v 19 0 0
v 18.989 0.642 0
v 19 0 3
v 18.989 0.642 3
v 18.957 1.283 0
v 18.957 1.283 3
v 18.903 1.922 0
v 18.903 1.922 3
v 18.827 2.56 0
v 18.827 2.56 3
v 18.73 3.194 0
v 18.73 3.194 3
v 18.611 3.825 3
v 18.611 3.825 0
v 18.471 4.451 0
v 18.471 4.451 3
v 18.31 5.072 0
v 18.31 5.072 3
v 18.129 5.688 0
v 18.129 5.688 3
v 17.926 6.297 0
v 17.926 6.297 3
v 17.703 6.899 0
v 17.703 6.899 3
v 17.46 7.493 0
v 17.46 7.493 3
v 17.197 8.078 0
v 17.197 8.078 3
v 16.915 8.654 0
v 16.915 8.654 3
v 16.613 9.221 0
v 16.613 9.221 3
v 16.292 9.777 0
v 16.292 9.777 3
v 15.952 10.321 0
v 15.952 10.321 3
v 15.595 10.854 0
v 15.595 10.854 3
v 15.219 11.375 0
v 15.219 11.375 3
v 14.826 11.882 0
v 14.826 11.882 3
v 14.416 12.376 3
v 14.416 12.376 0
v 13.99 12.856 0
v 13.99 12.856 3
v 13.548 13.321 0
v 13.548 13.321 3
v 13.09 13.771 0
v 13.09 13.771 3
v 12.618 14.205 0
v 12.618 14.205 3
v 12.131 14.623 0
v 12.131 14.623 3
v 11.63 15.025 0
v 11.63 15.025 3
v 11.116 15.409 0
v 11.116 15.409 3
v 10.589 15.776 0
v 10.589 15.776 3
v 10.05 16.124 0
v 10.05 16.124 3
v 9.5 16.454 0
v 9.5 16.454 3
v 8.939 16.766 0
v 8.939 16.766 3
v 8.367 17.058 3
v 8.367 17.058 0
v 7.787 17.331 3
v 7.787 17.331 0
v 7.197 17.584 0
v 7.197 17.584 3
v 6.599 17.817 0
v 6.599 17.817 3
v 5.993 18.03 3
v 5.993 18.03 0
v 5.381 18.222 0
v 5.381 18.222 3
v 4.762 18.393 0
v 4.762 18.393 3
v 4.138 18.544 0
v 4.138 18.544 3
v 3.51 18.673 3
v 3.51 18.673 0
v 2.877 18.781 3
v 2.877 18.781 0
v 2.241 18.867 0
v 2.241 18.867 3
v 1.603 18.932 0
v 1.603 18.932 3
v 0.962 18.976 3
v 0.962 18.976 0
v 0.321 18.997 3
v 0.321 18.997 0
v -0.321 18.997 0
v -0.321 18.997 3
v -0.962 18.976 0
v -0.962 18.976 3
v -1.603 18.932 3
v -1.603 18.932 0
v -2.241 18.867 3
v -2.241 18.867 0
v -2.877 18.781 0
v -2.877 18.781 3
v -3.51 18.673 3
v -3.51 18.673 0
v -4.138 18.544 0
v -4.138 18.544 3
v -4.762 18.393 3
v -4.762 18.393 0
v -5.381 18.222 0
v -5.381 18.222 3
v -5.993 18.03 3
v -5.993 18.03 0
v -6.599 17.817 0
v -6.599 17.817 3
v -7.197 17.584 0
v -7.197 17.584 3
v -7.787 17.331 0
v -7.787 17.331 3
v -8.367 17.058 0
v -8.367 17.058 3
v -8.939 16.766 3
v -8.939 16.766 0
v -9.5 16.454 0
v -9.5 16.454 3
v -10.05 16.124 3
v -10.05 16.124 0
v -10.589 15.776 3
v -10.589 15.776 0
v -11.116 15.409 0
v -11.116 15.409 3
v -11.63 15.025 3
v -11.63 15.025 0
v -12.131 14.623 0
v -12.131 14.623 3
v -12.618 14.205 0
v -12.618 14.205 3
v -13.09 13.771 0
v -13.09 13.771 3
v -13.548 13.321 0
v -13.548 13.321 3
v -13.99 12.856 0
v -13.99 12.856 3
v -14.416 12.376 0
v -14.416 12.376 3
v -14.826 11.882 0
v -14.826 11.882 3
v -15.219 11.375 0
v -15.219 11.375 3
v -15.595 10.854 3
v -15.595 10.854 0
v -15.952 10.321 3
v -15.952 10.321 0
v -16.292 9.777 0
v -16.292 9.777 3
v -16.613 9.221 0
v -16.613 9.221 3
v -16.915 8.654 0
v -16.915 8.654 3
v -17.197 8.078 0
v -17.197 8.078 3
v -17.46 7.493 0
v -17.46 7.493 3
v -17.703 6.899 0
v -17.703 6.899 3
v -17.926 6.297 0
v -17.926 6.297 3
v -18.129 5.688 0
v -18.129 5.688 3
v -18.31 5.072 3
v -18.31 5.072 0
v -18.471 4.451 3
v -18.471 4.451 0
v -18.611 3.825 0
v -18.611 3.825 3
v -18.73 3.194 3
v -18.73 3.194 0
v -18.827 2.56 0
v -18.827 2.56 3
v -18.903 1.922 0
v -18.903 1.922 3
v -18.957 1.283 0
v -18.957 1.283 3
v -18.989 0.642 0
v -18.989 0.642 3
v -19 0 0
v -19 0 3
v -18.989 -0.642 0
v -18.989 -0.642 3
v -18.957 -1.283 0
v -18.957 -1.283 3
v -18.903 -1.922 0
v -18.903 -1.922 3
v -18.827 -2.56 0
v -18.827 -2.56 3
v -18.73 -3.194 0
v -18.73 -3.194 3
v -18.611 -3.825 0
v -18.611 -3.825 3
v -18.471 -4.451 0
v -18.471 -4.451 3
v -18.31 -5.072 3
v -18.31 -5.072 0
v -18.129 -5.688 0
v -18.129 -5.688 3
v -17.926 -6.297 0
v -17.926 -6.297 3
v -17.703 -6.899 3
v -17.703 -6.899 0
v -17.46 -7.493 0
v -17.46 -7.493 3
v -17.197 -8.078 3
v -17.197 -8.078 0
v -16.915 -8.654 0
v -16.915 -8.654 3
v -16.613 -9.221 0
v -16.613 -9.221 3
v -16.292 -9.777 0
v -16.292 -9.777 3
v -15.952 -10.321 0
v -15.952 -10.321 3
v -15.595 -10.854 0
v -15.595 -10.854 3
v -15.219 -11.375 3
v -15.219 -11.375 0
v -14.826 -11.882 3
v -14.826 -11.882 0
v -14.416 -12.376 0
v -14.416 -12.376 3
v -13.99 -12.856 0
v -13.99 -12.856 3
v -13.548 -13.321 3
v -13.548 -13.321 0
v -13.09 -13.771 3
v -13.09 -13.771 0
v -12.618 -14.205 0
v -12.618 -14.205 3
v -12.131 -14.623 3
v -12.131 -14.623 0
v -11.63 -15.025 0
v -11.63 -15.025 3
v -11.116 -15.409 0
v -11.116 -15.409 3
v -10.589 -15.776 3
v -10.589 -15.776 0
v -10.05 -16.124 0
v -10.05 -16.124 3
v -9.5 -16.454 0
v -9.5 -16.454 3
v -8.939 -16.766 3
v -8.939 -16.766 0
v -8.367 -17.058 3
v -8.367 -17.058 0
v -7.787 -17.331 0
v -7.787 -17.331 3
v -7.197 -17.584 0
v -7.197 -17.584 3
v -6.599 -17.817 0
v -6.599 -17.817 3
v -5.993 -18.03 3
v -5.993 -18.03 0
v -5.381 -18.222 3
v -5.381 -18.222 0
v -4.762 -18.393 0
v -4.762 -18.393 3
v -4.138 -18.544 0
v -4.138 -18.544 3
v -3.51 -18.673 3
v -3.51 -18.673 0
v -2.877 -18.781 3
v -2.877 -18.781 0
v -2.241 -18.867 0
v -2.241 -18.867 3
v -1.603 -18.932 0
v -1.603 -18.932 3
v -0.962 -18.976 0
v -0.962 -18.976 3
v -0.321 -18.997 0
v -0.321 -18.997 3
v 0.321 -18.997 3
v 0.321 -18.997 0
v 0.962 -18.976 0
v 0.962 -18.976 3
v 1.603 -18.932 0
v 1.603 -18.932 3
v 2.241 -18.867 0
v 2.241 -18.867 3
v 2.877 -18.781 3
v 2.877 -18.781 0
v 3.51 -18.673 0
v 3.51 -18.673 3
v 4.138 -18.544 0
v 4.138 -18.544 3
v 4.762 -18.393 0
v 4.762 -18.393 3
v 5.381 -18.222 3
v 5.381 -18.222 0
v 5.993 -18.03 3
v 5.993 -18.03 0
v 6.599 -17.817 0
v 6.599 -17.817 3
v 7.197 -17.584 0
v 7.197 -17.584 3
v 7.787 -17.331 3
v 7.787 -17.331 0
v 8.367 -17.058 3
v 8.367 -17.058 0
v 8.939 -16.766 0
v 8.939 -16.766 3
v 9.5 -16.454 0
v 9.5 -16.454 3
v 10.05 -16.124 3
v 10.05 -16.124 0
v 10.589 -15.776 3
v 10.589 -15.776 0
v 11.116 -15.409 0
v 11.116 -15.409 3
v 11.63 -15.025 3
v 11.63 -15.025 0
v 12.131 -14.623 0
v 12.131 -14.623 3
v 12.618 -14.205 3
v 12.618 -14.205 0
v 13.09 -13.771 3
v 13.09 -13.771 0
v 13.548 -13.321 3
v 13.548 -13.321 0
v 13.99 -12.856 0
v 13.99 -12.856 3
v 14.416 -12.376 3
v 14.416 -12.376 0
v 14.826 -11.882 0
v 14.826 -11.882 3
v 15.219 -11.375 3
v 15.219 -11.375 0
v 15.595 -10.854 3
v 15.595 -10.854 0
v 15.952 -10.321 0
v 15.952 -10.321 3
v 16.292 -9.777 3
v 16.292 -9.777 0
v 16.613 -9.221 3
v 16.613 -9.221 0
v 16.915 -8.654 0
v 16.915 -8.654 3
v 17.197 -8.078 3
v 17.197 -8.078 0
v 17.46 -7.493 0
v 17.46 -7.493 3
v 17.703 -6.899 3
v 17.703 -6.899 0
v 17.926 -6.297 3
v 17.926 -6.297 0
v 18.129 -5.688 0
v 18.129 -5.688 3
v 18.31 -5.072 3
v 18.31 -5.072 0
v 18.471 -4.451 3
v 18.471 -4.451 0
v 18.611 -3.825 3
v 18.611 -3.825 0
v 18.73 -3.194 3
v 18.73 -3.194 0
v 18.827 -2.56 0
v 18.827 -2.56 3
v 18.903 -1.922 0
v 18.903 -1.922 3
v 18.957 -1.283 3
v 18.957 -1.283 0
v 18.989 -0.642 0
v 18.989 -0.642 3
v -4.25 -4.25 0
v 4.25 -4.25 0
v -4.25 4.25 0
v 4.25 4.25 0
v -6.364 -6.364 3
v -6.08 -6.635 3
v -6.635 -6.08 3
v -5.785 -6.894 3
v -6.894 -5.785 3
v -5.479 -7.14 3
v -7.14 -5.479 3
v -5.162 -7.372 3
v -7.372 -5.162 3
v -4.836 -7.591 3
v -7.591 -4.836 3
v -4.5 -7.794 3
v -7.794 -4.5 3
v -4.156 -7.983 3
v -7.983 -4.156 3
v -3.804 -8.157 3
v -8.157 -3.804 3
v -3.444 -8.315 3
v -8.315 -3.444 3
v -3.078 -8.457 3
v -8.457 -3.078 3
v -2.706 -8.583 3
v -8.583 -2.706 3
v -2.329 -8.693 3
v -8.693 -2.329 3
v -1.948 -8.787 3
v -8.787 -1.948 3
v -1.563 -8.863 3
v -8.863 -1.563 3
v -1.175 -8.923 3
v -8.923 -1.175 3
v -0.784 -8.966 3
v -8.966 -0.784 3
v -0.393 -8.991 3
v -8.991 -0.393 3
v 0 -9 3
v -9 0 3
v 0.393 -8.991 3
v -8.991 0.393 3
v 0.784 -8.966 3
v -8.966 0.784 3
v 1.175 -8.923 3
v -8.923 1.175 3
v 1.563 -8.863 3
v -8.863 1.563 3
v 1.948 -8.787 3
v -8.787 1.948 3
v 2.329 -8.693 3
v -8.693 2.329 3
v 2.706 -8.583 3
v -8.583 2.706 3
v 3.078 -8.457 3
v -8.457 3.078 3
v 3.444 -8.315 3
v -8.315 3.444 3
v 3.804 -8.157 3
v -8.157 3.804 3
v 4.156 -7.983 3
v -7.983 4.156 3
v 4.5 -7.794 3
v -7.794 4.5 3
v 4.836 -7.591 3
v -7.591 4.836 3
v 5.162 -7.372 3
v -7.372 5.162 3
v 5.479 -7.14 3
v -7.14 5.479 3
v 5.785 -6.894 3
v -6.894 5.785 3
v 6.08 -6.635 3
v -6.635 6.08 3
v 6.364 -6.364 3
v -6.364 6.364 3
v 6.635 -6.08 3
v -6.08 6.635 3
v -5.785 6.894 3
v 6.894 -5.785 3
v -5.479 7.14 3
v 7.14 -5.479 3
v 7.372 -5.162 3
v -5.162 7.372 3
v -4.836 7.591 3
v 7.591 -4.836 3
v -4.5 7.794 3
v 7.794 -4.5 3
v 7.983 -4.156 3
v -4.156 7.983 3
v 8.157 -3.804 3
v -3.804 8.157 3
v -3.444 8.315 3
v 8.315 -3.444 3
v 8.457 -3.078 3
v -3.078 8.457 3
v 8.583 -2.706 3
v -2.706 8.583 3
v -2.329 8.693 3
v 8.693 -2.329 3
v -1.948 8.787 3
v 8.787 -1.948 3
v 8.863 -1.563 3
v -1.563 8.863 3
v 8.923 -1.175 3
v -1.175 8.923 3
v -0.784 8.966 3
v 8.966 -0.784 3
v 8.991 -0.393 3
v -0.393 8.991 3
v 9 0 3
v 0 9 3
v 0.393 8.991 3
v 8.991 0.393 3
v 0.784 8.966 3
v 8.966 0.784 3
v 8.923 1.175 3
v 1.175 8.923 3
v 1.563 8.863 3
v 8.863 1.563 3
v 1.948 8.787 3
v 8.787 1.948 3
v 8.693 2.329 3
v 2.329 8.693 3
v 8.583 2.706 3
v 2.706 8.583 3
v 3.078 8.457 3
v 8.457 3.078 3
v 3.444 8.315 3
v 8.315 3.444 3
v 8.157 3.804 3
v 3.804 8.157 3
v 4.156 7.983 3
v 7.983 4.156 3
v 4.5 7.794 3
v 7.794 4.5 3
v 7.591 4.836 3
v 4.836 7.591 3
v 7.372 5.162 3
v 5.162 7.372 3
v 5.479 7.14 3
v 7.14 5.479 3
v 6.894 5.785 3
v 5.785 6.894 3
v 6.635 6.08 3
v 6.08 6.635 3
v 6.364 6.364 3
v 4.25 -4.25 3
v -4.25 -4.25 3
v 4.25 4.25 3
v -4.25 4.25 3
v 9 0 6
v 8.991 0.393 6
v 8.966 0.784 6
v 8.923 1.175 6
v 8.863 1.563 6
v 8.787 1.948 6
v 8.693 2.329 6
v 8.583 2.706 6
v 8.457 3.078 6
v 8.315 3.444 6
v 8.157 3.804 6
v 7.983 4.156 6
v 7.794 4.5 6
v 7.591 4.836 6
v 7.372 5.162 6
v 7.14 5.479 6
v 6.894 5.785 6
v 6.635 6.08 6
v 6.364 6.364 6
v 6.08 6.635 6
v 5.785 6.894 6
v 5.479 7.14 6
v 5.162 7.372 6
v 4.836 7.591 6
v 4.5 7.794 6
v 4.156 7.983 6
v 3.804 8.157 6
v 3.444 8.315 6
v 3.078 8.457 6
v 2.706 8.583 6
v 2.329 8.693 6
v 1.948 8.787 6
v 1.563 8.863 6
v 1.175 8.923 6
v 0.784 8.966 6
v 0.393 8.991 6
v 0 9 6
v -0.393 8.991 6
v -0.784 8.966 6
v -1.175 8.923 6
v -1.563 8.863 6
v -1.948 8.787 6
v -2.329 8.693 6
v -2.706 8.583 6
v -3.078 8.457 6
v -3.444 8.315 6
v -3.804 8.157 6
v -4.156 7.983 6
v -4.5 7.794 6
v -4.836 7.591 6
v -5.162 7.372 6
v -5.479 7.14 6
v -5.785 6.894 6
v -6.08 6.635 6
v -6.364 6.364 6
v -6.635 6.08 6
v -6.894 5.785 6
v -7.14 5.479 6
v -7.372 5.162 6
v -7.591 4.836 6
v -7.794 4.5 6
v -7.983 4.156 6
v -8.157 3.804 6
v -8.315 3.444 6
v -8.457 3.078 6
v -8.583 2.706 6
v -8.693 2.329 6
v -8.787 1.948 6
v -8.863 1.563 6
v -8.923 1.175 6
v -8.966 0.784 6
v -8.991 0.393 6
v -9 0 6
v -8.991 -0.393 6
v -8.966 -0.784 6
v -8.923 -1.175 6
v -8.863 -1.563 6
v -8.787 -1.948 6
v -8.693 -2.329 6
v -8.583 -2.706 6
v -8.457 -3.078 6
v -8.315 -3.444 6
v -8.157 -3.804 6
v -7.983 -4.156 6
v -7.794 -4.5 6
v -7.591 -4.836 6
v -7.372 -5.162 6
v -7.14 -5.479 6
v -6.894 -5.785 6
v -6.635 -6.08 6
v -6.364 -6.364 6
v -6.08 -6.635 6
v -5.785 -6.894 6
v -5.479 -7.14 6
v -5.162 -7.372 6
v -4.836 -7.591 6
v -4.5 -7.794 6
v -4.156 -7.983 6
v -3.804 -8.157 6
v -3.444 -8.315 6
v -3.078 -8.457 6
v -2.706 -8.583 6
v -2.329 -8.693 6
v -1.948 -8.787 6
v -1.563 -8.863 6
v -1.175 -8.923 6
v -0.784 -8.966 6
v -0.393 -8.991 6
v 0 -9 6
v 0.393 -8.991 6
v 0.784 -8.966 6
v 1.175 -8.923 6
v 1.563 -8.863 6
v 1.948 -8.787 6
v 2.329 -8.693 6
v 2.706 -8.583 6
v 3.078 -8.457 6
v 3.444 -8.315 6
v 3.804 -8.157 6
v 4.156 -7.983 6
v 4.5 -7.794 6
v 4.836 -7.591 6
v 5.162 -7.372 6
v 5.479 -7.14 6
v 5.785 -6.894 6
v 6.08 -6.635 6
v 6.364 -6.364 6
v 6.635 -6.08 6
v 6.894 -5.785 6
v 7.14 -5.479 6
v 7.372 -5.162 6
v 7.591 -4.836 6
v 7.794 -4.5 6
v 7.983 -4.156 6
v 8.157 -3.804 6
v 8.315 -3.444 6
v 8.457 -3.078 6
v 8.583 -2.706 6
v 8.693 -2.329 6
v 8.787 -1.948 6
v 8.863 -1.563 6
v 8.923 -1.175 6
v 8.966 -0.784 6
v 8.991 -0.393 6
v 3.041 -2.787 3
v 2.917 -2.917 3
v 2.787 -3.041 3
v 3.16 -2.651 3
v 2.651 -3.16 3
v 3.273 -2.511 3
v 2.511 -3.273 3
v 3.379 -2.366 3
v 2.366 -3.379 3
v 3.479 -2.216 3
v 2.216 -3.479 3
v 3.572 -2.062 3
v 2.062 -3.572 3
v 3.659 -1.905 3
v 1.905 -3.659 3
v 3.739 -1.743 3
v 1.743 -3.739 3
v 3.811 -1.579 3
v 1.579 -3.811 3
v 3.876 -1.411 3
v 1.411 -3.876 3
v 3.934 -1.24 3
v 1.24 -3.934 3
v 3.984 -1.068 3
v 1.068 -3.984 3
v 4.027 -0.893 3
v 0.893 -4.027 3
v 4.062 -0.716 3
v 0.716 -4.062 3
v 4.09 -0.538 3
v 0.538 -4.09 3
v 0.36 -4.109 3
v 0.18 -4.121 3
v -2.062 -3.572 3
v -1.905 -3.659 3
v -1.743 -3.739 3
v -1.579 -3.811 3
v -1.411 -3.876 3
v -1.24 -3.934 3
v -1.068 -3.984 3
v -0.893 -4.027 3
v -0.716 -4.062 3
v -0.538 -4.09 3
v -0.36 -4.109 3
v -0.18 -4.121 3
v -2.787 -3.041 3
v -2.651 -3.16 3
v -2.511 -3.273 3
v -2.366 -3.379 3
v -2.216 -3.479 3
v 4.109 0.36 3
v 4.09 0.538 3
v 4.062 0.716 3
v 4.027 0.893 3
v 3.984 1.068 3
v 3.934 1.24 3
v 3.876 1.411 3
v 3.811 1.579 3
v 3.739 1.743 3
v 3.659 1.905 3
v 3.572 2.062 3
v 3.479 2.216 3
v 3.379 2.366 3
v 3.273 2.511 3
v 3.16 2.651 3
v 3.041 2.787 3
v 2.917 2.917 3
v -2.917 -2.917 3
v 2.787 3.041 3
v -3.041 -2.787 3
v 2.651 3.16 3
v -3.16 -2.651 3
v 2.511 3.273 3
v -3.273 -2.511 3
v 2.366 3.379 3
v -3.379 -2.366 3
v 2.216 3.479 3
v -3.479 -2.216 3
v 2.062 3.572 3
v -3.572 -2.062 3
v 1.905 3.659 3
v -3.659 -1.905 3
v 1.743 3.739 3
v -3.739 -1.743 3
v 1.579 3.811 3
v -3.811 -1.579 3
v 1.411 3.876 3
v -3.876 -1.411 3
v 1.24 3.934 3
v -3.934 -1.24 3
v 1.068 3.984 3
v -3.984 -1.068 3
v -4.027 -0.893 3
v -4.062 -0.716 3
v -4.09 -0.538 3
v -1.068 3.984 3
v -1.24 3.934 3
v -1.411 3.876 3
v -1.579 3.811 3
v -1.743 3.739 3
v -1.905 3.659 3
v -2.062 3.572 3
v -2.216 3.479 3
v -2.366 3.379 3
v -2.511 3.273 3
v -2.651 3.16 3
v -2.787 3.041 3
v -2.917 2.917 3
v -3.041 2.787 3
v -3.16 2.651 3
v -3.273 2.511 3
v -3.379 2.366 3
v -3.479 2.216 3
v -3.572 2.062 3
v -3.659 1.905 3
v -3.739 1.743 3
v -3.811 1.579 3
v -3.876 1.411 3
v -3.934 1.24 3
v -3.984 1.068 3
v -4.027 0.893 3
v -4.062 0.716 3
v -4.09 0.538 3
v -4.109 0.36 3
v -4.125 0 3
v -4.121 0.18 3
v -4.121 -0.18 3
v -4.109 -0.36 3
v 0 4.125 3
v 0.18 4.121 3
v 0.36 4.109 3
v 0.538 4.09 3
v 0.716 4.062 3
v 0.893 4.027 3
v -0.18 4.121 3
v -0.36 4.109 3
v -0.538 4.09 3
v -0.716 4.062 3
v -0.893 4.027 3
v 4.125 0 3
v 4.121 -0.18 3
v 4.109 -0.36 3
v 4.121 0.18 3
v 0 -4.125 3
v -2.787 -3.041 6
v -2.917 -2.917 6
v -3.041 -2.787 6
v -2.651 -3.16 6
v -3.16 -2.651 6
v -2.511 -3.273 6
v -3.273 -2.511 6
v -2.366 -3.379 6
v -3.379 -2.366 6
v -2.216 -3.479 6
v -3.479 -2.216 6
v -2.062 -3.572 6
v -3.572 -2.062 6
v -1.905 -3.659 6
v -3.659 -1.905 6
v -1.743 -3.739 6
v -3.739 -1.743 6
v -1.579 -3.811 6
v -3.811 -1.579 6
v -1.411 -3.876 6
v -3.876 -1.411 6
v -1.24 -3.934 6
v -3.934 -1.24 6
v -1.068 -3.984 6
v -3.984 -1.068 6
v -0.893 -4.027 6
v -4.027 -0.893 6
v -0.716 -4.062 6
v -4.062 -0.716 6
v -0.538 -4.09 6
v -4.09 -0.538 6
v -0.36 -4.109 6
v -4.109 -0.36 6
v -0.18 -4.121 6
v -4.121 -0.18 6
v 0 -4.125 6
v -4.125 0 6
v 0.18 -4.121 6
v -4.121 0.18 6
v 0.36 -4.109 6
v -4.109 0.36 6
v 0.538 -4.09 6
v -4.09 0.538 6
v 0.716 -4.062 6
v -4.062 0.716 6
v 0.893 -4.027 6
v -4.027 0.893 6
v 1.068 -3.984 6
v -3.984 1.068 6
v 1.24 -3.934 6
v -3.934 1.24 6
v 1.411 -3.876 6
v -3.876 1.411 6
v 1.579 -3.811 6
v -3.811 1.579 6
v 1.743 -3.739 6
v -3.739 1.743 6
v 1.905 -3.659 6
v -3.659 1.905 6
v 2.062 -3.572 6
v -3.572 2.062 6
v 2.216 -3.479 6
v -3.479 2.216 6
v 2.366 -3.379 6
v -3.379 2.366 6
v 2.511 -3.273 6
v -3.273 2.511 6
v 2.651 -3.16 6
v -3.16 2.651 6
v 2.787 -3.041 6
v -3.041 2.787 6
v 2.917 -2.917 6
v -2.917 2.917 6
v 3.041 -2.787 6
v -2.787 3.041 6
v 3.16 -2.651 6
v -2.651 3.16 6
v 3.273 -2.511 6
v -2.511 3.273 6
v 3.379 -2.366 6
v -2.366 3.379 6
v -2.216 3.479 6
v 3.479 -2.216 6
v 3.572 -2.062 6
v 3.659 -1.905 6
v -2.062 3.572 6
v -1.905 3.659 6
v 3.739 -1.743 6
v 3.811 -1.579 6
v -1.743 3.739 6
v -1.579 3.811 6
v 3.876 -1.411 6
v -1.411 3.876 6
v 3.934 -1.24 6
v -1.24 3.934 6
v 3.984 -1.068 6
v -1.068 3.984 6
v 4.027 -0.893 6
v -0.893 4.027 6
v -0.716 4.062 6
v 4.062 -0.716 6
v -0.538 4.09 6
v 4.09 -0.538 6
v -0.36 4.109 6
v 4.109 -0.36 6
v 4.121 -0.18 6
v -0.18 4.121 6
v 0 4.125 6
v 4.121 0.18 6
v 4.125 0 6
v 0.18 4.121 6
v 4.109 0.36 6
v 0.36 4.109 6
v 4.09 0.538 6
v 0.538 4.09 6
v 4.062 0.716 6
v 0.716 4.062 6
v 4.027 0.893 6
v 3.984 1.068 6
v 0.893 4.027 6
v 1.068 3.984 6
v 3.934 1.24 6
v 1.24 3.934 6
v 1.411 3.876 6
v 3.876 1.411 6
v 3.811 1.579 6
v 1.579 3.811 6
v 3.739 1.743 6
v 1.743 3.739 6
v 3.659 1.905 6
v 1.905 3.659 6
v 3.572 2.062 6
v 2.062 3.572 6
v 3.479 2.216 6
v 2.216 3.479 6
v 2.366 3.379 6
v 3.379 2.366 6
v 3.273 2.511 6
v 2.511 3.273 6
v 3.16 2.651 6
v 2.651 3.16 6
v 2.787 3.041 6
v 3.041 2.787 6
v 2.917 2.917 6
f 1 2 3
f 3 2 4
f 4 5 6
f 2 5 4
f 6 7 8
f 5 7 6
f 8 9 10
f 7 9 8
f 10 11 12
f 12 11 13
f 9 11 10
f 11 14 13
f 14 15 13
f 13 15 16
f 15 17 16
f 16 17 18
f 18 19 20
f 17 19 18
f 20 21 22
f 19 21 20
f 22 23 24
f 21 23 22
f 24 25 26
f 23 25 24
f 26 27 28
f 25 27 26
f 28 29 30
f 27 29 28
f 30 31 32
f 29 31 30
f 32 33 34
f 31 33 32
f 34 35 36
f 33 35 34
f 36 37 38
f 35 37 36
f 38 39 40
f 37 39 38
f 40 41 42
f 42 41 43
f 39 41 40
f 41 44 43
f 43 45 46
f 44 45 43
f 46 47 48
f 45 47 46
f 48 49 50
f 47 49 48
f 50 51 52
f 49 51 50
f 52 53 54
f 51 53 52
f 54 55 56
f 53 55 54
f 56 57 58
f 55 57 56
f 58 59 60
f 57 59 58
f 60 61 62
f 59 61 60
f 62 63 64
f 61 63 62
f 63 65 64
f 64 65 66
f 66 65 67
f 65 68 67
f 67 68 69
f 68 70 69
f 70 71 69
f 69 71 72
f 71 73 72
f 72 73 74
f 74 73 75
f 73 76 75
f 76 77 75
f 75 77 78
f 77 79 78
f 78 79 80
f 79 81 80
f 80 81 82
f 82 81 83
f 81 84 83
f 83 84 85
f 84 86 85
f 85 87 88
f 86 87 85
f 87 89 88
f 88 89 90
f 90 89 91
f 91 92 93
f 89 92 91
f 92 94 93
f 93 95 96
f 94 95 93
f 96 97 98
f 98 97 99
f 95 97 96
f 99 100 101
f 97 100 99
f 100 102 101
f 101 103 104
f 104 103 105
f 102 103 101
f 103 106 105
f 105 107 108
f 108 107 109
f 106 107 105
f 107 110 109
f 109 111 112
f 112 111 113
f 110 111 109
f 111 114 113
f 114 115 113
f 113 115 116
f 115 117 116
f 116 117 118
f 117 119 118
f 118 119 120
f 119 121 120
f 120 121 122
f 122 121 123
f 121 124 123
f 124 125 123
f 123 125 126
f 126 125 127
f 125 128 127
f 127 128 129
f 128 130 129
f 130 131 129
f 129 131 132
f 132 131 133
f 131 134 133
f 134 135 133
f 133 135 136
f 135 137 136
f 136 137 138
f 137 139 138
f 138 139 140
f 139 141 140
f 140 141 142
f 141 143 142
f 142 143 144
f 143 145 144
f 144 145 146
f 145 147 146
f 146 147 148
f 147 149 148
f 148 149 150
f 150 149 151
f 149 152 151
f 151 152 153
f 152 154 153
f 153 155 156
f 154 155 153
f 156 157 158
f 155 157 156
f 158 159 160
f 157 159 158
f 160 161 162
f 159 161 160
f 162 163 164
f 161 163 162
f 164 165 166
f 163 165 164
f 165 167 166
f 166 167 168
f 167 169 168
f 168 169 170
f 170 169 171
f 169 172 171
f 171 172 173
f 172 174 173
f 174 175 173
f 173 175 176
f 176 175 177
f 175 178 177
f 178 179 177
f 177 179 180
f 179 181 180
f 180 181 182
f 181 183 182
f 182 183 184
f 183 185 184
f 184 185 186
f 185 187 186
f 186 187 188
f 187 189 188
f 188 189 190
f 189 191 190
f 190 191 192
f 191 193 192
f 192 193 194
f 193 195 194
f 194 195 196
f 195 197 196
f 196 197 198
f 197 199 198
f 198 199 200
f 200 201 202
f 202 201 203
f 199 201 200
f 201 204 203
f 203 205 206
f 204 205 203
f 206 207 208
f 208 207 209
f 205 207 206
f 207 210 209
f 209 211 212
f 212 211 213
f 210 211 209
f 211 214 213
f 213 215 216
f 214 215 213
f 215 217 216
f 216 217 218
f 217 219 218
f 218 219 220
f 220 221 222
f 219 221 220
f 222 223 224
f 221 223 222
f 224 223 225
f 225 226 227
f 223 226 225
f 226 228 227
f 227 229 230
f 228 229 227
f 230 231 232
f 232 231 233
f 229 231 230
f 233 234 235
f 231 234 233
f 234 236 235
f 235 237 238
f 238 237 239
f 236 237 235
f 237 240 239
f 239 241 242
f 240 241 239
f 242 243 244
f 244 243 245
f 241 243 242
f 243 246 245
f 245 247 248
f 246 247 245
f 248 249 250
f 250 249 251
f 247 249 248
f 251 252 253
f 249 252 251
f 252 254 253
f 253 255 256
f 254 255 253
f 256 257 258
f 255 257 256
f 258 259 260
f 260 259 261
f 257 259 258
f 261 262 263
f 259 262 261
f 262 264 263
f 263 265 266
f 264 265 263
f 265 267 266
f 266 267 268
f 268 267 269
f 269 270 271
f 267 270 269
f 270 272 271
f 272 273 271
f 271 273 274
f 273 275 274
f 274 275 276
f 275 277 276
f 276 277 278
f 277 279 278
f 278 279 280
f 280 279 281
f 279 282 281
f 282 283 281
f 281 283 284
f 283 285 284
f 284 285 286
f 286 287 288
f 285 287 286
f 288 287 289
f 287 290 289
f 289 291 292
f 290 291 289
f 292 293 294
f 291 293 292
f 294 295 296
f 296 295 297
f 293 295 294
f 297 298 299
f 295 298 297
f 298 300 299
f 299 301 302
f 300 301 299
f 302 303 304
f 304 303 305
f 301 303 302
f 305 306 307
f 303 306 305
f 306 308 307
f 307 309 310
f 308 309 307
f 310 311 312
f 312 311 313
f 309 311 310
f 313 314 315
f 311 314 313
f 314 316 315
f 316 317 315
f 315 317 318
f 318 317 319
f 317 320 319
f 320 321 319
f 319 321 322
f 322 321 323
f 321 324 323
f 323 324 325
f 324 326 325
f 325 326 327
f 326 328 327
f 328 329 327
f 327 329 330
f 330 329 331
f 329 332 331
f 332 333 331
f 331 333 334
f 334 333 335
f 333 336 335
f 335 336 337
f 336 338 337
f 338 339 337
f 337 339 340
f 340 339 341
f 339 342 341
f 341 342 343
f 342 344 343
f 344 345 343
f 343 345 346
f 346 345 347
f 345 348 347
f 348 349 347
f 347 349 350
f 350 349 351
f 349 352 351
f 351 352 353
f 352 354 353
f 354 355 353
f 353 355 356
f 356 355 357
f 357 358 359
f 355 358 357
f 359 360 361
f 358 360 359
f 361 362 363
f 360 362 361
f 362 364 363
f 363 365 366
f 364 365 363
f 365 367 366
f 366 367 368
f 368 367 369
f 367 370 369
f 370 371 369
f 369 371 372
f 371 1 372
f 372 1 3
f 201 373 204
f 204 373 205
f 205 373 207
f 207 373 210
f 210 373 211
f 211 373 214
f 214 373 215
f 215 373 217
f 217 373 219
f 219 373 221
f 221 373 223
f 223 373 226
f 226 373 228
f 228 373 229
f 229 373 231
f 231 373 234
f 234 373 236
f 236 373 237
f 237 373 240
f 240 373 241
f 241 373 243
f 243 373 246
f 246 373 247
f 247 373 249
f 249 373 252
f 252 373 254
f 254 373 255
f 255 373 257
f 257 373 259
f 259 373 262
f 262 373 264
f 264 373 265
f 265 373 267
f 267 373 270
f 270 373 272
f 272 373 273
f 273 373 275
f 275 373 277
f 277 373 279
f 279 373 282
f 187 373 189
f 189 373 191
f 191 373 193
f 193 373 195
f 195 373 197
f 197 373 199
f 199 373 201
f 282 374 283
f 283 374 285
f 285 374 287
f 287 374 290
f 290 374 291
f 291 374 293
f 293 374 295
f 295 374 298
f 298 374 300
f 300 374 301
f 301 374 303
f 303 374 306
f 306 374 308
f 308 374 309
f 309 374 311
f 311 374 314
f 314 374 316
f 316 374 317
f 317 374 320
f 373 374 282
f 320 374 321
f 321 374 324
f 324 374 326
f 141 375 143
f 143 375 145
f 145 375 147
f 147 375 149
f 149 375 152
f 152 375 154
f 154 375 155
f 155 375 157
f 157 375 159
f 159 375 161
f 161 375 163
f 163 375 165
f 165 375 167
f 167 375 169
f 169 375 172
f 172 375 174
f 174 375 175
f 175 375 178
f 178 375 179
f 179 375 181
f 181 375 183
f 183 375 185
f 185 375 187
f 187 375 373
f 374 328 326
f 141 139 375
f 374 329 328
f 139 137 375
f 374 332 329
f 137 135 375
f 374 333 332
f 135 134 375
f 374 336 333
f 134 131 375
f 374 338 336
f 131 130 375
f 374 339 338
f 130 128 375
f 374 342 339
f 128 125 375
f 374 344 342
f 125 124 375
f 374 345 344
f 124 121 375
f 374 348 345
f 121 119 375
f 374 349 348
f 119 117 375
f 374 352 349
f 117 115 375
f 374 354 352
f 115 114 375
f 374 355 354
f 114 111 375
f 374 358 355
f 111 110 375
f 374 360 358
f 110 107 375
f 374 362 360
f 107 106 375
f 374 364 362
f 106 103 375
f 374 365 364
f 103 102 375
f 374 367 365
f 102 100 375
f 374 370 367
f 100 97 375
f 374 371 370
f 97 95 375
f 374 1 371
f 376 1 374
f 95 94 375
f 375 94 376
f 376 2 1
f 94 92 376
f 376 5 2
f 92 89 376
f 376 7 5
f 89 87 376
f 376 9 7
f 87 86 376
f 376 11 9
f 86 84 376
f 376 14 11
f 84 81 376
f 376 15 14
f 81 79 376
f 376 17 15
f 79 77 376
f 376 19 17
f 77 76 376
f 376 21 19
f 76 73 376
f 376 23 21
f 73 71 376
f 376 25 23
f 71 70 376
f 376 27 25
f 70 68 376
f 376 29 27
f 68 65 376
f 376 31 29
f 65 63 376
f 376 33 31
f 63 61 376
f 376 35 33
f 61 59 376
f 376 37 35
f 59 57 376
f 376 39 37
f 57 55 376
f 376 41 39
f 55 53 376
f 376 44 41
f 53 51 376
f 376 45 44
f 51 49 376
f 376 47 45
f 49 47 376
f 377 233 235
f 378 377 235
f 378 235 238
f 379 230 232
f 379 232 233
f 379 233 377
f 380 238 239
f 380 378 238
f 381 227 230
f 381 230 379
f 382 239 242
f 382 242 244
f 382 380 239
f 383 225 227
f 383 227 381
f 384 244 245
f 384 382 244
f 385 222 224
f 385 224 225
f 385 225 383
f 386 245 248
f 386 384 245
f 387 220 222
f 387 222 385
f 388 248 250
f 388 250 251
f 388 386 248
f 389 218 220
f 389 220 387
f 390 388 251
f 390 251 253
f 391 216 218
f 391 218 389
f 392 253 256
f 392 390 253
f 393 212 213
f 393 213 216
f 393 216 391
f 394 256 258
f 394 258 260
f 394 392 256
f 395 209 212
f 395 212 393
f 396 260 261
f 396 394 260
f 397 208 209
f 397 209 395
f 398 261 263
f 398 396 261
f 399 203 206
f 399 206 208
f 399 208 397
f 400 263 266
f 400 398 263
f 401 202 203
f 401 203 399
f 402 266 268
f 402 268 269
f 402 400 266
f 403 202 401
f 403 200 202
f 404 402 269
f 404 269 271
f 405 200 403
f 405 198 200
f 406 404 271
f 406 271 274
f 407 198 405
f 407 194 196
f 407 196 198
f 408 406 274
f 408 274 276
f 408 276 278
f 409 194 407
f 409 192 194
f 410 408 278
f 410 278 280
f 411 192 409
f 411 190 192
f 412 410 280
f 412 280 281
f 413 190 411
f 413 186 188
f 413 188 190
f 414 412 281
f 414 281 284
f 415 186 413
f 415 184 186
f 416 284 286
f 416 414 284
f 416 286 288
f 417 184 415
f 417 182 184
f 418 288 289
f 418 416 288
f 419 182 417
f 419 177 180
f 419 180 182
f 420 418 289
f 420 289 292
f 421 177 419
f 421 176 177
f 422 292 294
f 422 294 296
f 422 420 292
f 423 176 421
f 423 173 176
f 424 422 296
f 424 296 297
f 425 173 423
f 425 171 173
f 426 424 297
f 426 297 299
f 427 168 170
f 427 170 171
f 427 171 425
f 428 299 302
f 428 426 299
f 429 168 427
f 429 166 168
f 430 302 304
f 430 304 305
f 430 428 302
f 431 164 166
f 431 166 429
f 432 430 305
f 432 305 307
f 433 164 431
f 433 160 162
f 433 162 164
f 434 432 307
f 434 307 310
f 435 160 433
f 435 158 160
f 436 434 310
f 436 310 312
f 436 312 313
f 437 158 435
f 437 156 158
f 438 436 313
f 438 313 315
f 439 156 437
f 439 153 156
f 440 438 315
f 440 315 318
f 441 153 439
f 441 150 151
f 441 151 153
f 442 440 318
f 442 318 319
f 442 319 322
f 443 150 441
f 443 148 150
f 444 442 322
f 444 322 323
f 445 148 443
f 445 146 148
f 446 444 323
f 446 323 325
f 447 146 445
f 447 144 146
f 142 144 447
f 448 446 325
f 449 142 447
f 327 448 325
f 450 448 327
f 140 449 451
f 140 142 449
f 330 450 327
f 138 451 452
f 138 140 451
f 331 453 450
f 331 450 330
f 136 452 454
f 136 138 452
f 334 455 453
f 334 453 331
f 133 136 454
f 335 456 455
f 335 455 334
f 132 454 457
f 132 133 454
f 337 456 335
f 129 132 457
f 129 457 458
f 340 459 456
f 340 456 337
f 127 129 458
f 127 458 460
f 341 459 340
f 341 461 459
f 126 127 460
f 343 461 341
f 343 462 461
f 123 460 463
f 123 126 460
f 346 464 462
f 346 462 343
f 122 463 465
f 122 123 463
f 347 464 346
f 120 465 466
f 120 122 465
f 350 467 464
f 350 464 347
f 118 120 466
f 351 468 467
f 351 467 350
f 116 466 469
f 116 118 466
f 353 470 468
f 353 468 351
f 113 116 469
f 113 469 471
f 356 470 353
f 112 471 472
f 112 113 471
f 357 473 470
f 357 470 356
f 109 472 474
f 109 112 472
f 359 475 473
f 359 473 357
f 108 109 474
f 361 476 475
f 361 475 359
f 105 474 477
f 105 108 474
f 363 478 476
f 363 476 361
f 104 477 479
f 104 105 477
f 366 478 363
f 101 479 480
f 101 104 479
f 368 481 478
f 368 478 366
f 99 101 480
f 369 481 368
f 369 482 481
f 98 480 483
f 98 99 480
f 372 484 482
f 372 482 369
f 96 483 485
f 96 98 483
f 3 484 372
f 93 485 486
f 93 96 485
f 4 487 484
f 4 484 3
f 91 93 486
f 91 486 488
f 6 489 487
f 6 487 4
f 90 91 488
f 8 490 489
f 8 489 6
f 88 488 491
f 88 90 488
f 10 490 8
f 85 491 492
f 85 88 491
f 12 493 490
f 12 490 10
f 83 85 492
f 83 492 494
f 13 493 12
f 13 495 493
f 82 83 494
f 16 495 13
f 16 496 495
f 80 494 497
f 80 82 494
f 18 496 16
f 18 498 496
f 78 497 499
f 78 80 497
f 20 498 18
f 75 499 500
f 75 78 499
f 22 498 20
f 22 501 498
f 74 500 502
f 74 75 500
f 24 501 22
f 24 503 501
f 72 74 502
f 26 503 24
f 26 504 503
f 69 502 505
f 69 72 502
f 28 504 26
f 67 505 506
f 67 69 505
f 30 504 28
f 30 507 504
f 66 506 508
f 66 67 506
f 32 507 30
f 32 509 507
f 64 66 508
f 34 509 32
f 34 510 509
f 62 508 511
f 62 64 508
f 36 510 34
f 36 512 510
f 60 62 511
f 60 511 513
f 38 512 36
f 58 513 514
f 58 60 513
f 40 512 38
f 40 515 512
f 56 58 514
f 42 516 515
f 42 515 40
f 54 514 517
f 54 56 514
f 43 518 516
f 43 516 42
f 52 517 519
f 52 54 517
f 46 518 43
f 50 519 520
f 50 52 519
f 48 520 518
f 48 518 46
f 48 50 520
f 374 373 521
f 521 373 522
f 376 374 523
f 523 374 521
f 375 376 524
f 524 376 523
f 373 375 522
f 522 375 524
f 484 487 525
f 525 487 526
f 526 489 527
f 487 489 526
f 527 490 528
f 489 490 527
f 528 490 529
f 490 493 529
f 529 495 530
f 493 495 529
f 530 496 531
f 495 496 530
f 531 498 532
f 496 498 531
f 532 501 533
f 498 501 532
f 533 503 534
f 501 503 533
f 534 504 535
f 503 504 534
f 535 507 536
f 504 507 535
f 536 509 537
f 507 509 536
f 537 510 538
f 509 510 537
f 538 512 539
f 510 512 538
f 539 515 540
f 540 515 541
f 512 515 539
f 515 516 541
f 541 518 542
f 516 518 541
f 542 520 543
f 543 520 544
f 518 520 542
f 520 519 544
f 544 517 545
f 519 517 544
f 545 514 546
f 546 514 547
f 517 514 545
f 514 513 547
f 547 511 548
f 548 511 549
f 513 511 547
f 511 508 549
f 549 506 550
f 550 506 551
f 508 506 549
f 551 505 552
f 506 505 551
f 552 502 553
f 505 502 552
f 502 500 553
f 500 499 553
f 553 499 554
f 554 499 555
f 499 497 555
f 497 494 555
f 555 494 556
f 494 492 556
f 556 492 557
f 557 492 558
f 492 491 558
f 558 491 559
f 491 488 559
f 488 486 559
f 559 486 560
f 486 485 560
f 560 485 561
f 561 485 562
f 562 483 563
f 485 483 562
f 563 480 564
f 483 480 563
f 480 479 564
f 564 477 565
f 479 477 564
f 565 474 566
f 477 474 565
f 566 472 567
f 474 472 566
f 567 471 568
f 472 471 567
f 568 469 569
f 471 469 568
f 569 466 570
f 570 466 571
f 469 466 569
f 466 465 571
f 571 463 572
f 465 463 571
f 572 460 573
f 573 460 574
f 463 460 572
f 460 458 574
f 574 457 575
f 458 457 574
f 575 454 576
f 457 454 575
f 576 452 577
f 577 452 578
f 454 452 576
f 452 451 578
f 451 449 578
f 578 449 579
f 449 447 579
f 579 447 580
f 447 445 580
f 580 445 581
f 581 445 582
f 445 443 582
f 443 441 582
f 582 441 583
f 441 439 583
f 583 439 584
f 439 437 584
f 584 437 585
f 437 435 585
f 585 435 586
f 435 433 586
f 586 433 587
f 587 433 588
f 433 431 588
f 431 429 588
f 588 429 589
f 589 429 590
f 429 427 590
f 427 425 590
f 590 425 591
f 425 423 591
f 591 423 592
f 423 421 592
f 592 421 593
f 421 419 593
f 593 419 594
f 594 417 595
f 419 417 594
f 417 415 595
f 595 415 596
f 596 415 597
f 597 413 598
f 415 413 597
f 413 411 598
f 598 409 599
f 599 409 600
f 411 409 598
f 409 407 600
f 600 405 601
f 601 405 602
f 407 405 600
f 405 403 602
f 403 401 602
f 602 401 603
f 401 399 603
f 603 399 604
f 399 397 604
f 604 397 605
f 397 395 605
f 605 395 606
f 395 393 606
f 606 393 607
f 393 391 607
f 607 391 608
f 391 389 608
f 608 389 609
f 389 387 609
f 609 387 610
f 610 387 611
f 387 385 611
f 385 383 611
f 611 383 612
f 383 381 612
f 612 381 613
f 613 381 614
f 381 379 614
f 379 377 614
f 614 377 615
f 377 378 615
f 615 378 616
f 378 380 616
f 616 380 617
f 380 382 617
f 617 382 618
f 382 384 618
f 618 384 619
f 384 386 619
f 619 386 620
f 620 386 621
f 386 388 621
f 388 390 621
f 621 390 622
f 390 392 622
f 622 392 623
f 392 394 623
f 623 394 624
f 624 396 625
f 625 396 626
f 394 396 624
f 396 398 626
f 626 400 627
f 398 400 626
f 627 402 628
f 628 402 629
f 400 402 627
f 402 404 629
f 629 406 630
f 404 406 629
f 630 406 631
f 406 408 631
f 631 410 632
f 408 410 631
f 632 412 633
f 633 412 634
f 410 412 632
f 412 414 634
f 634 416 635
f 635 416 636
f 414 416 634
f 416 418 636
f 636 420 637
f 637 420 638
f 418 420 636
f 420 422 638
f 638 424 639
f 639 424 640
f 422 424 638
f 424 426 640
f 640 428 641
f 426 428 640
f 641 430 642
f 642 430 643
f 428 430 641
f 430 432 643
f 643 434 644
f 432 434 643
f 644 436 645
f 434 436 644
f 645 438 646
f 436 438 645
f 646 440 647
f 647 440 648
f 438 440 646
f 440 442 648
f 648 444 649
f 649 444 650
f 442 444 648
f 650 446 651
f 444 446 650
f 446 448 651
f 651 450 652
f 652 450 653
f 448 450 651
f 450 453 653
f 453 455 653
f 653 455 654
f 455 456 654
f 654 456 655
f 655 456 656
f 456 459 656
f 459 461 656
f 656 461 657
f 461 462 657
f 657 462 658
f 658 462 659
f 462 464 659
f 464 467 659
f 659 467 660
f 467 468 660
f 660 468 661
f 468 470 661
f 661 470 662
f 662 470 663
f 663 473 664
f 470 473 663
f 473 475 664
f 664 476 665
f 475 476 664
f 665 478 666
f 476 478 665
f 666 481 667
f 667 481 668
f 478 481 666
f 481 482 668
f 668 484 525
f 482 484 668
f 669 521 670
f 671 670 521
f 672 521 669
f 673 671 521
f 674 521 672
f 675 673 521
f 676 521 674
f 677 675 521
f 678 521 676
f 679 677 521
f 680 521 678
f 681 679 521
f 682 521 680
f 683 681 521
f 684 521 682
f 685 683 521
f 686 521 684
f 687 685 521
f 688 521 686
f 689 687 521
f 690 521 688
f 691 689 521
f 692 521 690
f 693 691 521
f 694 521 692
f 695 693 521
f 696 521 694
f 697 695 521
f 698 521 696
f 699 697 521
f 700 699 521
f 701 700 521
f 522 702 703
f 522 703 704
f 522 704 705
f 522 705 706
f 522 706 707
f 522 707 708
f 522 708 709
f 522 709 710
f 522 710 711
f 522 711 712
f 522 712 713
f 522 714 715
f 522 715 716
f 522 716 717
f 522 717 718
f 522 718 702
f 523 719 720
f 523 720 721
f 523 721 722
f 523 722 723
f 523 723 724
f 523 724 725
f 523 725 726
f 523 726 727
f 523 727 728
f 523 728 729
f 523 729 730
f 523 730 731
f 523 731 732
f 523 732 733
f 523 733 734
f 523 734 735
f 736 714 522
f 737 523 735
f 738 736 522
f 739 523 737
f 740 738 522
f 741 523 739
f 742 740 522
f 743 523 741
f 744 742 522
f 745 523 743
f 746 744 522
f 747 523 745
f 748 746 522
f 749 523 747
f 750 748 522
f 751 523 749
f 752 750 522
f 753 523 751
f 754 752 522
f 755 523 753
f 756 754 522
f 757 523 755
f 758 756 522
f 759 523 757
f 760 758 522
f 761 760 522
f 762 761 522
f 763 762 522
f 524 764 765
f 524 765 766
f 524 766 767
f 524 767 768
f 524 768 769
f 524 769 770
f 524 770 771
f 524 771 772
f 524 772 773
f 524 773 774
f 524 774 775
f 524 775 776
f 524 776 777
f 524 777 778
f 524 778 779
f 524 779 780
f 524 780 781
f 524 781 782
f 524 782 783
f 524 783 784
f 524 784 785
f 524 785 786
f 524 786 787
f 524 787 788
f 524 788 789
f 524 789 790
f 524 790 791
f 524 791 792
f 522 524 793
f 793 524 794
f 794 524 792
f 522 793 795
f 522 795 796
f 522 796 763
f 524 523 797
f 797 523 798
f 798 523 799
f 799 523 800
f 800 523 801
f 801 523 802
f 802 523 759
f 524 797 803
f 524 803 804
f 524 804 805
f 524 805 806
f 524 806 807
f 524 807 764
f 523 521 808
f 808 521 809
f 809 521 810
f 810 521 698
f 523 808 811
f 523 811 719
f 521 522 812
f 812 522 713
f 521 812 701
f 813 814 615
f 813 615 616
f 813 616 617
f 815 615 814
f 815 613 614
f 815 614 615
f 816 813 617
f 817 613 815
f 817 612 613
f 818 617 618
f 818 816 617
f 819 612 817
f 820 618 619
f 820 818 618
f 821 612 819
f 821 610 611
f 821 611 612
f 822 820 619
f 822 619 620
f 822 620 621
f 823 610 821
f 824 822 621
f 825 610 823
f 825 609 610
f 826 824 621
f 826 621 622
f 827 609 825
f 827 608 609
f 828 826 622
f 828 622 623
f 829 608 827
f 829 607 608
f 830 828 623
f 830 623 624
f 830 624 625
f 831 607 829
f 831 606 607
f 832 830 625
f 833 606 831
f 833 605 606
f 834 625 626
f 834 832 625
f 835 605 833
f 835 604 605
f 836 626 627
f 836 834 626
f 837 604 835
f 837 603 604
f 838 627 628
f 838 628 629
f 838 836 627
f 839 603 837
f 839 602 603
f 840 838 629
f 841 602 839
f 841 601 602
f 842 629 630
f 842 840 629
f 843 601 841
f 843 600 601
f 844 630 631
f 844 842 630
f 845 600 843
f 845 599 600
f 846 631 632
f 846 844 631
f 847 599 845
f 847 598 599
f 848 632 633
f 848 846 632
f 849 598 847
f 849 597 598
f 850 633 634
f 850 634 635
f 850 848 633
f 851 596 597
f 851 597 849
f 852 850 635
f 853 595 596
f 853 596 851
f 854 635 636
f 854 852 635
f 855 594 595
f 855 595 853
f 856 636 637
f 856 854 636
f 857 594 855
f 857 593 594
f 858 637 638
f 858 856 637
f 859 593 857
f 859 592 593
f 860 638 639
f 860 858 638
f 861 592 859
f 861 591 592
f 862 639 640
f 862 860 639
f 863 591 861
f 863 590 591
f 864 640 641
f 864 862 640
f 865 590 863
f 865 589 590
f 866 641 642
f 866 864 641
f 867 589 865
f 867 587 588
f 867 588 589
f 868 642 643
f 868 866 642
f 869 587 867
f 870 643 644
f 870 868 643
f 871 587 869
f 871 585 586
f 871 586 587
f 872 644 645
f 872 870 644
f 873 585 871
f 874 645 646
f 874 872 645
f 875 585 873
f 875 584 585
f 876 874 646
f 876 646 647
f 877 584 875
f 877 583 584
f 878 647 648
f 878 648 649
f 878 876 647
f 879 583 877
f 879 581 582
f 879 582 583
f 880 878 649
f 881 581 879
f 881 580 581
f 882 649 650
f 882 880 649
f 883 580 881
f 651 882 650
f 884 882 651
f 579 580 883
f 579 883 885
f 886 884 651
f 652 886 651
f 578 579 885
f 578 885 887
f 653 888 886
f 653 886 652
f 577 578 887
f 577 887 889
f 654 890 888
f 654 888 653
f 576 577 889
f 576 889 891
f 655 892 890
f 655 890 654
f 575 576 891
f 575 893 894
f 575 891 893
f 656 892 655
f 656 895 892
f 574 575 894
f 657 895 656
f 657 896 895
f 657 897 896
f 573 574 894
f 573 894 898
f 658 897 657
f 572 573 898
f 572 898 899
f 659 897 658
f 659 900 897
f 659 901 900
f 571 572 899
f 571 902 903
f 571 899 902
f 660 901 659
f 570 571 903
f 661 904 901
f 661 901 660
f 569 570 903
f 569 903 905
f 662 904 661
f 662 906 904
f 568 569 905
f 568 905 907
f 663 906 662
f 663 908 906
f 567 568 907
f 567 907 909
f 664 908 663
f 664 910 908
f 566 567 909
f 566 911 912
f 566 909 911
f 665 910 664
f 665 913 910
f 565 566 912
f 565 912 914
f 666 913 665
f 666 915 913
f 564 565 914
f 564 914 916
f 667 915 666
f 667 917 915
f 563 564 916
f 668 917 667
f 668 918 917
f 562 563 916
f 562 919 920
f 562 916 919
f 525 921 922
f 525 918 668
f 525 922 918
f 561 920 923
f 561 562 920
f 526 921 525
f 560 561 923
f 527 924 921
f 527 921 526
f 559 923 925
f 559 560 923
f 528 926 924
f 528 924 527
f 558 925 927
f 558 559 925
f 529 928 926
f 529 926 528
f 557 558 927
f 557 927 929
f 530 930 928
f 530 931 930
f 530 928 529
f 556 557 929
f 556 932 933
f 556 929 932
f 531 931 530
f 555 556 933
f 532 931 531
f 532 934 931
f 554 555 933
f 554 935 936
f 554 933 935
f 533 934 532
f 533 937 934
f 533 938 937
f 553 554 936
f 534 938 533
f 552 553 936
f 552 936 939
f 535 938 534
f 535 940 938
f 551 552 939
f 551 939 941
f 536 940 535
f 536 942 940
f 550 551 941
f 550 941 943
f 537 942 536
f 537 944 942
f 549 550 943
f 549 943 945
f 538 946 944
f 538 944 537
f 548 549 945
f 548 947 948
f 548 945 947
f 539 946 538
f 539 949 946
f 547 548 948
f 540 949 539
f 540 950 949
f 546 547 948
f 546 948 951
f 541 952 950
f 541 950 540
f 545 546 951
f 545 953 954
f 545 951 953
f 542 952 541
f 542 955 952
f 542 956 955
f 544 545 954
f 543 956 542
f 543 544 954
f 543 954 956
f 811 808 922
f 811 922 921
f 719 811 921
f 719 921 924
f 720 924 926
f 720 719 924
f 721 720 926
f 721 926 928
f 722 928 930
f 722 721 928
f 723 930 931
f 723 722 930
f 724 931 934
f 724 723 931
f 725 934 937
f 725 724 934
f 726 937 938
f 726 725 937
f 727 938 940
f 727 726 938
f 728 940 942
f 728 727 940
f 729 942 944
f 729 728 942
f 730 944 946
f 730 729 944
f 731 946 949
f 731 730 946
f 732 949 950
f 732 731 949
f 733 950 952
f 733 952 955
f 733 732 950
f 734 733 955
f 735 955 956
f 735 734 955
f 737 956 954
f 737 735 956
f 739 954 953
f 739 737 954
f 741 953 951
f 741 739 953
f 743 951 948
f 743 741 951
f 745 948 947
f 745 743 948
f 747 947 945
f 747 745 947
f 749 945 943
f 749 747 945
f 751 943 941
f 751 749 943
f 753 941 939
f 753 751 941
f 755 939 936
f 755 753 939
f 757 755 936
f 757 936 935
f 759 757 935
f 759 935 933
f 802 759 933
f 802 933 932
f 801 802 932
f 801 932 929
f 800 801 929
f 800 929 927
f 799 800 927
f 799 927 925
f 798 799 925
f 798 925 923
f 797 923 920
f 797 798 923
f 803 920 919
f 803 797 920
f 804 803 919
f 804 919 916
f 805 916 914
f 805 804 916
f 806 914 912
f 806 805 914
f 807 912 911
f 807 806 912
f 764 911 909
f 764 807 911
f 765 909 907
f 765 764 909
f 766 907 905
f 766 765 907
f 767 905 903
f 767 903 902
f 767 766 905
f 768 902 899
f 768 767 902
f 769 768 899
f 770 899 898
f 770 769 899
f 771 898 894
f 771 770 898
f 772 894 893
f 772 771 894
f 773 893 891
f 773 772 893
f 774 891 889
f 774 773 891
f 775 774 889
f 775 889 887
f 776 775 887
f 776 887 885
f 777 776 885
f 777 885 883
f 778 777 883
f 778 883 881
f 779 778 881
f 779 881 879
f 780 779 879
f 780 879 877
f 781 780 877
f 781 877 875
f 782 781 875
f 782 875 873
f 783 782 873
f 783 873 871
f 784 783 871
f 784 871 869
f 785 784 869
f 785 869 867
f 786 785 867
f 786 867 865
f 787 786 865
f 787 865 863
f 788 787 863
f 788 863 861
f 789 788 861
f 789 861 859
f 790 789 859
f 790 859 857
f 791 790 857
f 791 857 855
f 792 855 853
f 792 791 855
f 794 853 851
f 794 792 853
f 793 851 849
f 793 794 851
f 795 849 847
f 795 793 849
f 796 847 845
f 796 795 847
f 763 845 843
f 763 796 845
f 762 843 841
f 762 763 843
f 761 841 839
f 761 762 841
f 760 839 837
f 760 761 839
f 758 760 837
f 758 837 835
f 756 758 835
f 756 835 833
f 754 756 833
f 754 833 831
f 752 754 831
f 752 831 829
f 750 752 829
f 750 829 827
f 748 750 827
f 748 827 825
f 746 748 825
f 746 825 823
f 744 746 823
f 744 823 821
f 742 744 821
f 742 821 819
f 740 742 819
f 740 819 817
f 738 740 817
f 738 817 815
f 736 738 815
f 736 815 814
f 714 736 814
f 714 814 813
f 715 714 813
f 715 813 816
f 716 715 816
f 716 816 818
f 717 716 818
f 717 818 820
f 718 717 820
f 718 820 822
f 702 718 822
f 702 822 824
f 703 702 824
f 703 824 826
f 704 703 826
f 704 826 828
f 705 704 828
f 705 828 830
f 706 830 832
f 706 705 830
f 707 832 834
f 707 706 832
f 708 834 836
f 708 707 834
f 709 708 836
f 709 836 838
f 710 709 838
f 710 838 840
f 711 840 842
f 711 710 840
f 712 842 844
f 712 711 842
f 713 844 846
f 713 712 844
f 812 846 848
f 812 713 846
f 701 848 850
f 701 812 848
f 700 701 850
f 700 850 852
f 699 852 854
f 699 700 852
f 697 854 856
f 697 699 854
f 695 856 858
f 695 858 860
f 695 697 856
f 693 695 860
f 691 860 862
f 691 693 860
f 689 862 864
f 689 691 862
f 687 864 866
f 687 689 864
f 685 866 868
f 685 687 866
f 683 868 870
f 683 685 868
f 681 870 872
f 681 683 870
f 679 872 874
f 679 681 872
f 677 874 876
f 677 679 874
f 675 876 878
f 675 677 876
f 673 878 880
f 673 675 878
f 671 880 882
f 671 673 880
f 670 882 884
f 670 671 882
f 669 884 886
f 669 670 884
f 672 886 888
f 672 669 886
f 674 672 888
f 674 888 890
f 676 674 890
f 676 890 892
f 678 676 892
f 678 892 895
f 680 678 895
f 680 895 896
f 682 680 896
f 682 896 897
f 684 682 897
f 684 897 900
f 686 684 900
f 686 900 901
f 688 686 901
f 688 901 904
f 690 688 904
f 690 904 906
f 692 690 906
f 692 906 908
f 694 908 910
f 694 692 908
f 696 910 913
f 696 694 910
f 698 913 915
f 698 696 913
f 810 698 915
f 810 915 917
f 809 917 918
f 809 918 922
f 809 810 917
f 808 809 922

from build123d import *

# Parameters (mm, degrees)
SKETCH_R      = 19
SKETCH_R_2    = 4.125
PAD_DEPTH     = 3
SKETCH001_R   = 9
SKETCH001_R_2 = 4.125
PAD001_DEPTH  = 3
SKETCH002_W   = 8.5
SKETCH002_H   = 8.5
POCKET_DEPTH  = 3


with BuildPart() as part:
    # Sketch → Pad (new body)
    with BuildSketch(Plane.XY):
        Circle(SKETCH_R)
        Circle(SKETCH_R_2, mode=Mode.SUBTRACT)
    extrude(amount=PAD_DEPTH)

    # Sketch001 (on Face4 of Pad) → Pad001 (join)
    with BuildSketch(Plane.XY.offset(3)):
        Circle(SKETCH001_R)
        Circle(SKETCH001_R_2, mode=Mode.SUBTRACT)
    extrude(amount=PAD001_DEPTH)

    # Sketch002 (on Face2 of Pad001) → Pocket (cut)
    with BuildSketch(Plane(origin=(0, 0, 0), x_dir=(1, 0, 0), z_dir=(0, 0, -1))):
        Rectangle(SKETCH002_W, SKETCH002_H)
    extrude(amount=-POCKET_DEPTH, mode=Mode.SUBTRACT)


solid = part.part
